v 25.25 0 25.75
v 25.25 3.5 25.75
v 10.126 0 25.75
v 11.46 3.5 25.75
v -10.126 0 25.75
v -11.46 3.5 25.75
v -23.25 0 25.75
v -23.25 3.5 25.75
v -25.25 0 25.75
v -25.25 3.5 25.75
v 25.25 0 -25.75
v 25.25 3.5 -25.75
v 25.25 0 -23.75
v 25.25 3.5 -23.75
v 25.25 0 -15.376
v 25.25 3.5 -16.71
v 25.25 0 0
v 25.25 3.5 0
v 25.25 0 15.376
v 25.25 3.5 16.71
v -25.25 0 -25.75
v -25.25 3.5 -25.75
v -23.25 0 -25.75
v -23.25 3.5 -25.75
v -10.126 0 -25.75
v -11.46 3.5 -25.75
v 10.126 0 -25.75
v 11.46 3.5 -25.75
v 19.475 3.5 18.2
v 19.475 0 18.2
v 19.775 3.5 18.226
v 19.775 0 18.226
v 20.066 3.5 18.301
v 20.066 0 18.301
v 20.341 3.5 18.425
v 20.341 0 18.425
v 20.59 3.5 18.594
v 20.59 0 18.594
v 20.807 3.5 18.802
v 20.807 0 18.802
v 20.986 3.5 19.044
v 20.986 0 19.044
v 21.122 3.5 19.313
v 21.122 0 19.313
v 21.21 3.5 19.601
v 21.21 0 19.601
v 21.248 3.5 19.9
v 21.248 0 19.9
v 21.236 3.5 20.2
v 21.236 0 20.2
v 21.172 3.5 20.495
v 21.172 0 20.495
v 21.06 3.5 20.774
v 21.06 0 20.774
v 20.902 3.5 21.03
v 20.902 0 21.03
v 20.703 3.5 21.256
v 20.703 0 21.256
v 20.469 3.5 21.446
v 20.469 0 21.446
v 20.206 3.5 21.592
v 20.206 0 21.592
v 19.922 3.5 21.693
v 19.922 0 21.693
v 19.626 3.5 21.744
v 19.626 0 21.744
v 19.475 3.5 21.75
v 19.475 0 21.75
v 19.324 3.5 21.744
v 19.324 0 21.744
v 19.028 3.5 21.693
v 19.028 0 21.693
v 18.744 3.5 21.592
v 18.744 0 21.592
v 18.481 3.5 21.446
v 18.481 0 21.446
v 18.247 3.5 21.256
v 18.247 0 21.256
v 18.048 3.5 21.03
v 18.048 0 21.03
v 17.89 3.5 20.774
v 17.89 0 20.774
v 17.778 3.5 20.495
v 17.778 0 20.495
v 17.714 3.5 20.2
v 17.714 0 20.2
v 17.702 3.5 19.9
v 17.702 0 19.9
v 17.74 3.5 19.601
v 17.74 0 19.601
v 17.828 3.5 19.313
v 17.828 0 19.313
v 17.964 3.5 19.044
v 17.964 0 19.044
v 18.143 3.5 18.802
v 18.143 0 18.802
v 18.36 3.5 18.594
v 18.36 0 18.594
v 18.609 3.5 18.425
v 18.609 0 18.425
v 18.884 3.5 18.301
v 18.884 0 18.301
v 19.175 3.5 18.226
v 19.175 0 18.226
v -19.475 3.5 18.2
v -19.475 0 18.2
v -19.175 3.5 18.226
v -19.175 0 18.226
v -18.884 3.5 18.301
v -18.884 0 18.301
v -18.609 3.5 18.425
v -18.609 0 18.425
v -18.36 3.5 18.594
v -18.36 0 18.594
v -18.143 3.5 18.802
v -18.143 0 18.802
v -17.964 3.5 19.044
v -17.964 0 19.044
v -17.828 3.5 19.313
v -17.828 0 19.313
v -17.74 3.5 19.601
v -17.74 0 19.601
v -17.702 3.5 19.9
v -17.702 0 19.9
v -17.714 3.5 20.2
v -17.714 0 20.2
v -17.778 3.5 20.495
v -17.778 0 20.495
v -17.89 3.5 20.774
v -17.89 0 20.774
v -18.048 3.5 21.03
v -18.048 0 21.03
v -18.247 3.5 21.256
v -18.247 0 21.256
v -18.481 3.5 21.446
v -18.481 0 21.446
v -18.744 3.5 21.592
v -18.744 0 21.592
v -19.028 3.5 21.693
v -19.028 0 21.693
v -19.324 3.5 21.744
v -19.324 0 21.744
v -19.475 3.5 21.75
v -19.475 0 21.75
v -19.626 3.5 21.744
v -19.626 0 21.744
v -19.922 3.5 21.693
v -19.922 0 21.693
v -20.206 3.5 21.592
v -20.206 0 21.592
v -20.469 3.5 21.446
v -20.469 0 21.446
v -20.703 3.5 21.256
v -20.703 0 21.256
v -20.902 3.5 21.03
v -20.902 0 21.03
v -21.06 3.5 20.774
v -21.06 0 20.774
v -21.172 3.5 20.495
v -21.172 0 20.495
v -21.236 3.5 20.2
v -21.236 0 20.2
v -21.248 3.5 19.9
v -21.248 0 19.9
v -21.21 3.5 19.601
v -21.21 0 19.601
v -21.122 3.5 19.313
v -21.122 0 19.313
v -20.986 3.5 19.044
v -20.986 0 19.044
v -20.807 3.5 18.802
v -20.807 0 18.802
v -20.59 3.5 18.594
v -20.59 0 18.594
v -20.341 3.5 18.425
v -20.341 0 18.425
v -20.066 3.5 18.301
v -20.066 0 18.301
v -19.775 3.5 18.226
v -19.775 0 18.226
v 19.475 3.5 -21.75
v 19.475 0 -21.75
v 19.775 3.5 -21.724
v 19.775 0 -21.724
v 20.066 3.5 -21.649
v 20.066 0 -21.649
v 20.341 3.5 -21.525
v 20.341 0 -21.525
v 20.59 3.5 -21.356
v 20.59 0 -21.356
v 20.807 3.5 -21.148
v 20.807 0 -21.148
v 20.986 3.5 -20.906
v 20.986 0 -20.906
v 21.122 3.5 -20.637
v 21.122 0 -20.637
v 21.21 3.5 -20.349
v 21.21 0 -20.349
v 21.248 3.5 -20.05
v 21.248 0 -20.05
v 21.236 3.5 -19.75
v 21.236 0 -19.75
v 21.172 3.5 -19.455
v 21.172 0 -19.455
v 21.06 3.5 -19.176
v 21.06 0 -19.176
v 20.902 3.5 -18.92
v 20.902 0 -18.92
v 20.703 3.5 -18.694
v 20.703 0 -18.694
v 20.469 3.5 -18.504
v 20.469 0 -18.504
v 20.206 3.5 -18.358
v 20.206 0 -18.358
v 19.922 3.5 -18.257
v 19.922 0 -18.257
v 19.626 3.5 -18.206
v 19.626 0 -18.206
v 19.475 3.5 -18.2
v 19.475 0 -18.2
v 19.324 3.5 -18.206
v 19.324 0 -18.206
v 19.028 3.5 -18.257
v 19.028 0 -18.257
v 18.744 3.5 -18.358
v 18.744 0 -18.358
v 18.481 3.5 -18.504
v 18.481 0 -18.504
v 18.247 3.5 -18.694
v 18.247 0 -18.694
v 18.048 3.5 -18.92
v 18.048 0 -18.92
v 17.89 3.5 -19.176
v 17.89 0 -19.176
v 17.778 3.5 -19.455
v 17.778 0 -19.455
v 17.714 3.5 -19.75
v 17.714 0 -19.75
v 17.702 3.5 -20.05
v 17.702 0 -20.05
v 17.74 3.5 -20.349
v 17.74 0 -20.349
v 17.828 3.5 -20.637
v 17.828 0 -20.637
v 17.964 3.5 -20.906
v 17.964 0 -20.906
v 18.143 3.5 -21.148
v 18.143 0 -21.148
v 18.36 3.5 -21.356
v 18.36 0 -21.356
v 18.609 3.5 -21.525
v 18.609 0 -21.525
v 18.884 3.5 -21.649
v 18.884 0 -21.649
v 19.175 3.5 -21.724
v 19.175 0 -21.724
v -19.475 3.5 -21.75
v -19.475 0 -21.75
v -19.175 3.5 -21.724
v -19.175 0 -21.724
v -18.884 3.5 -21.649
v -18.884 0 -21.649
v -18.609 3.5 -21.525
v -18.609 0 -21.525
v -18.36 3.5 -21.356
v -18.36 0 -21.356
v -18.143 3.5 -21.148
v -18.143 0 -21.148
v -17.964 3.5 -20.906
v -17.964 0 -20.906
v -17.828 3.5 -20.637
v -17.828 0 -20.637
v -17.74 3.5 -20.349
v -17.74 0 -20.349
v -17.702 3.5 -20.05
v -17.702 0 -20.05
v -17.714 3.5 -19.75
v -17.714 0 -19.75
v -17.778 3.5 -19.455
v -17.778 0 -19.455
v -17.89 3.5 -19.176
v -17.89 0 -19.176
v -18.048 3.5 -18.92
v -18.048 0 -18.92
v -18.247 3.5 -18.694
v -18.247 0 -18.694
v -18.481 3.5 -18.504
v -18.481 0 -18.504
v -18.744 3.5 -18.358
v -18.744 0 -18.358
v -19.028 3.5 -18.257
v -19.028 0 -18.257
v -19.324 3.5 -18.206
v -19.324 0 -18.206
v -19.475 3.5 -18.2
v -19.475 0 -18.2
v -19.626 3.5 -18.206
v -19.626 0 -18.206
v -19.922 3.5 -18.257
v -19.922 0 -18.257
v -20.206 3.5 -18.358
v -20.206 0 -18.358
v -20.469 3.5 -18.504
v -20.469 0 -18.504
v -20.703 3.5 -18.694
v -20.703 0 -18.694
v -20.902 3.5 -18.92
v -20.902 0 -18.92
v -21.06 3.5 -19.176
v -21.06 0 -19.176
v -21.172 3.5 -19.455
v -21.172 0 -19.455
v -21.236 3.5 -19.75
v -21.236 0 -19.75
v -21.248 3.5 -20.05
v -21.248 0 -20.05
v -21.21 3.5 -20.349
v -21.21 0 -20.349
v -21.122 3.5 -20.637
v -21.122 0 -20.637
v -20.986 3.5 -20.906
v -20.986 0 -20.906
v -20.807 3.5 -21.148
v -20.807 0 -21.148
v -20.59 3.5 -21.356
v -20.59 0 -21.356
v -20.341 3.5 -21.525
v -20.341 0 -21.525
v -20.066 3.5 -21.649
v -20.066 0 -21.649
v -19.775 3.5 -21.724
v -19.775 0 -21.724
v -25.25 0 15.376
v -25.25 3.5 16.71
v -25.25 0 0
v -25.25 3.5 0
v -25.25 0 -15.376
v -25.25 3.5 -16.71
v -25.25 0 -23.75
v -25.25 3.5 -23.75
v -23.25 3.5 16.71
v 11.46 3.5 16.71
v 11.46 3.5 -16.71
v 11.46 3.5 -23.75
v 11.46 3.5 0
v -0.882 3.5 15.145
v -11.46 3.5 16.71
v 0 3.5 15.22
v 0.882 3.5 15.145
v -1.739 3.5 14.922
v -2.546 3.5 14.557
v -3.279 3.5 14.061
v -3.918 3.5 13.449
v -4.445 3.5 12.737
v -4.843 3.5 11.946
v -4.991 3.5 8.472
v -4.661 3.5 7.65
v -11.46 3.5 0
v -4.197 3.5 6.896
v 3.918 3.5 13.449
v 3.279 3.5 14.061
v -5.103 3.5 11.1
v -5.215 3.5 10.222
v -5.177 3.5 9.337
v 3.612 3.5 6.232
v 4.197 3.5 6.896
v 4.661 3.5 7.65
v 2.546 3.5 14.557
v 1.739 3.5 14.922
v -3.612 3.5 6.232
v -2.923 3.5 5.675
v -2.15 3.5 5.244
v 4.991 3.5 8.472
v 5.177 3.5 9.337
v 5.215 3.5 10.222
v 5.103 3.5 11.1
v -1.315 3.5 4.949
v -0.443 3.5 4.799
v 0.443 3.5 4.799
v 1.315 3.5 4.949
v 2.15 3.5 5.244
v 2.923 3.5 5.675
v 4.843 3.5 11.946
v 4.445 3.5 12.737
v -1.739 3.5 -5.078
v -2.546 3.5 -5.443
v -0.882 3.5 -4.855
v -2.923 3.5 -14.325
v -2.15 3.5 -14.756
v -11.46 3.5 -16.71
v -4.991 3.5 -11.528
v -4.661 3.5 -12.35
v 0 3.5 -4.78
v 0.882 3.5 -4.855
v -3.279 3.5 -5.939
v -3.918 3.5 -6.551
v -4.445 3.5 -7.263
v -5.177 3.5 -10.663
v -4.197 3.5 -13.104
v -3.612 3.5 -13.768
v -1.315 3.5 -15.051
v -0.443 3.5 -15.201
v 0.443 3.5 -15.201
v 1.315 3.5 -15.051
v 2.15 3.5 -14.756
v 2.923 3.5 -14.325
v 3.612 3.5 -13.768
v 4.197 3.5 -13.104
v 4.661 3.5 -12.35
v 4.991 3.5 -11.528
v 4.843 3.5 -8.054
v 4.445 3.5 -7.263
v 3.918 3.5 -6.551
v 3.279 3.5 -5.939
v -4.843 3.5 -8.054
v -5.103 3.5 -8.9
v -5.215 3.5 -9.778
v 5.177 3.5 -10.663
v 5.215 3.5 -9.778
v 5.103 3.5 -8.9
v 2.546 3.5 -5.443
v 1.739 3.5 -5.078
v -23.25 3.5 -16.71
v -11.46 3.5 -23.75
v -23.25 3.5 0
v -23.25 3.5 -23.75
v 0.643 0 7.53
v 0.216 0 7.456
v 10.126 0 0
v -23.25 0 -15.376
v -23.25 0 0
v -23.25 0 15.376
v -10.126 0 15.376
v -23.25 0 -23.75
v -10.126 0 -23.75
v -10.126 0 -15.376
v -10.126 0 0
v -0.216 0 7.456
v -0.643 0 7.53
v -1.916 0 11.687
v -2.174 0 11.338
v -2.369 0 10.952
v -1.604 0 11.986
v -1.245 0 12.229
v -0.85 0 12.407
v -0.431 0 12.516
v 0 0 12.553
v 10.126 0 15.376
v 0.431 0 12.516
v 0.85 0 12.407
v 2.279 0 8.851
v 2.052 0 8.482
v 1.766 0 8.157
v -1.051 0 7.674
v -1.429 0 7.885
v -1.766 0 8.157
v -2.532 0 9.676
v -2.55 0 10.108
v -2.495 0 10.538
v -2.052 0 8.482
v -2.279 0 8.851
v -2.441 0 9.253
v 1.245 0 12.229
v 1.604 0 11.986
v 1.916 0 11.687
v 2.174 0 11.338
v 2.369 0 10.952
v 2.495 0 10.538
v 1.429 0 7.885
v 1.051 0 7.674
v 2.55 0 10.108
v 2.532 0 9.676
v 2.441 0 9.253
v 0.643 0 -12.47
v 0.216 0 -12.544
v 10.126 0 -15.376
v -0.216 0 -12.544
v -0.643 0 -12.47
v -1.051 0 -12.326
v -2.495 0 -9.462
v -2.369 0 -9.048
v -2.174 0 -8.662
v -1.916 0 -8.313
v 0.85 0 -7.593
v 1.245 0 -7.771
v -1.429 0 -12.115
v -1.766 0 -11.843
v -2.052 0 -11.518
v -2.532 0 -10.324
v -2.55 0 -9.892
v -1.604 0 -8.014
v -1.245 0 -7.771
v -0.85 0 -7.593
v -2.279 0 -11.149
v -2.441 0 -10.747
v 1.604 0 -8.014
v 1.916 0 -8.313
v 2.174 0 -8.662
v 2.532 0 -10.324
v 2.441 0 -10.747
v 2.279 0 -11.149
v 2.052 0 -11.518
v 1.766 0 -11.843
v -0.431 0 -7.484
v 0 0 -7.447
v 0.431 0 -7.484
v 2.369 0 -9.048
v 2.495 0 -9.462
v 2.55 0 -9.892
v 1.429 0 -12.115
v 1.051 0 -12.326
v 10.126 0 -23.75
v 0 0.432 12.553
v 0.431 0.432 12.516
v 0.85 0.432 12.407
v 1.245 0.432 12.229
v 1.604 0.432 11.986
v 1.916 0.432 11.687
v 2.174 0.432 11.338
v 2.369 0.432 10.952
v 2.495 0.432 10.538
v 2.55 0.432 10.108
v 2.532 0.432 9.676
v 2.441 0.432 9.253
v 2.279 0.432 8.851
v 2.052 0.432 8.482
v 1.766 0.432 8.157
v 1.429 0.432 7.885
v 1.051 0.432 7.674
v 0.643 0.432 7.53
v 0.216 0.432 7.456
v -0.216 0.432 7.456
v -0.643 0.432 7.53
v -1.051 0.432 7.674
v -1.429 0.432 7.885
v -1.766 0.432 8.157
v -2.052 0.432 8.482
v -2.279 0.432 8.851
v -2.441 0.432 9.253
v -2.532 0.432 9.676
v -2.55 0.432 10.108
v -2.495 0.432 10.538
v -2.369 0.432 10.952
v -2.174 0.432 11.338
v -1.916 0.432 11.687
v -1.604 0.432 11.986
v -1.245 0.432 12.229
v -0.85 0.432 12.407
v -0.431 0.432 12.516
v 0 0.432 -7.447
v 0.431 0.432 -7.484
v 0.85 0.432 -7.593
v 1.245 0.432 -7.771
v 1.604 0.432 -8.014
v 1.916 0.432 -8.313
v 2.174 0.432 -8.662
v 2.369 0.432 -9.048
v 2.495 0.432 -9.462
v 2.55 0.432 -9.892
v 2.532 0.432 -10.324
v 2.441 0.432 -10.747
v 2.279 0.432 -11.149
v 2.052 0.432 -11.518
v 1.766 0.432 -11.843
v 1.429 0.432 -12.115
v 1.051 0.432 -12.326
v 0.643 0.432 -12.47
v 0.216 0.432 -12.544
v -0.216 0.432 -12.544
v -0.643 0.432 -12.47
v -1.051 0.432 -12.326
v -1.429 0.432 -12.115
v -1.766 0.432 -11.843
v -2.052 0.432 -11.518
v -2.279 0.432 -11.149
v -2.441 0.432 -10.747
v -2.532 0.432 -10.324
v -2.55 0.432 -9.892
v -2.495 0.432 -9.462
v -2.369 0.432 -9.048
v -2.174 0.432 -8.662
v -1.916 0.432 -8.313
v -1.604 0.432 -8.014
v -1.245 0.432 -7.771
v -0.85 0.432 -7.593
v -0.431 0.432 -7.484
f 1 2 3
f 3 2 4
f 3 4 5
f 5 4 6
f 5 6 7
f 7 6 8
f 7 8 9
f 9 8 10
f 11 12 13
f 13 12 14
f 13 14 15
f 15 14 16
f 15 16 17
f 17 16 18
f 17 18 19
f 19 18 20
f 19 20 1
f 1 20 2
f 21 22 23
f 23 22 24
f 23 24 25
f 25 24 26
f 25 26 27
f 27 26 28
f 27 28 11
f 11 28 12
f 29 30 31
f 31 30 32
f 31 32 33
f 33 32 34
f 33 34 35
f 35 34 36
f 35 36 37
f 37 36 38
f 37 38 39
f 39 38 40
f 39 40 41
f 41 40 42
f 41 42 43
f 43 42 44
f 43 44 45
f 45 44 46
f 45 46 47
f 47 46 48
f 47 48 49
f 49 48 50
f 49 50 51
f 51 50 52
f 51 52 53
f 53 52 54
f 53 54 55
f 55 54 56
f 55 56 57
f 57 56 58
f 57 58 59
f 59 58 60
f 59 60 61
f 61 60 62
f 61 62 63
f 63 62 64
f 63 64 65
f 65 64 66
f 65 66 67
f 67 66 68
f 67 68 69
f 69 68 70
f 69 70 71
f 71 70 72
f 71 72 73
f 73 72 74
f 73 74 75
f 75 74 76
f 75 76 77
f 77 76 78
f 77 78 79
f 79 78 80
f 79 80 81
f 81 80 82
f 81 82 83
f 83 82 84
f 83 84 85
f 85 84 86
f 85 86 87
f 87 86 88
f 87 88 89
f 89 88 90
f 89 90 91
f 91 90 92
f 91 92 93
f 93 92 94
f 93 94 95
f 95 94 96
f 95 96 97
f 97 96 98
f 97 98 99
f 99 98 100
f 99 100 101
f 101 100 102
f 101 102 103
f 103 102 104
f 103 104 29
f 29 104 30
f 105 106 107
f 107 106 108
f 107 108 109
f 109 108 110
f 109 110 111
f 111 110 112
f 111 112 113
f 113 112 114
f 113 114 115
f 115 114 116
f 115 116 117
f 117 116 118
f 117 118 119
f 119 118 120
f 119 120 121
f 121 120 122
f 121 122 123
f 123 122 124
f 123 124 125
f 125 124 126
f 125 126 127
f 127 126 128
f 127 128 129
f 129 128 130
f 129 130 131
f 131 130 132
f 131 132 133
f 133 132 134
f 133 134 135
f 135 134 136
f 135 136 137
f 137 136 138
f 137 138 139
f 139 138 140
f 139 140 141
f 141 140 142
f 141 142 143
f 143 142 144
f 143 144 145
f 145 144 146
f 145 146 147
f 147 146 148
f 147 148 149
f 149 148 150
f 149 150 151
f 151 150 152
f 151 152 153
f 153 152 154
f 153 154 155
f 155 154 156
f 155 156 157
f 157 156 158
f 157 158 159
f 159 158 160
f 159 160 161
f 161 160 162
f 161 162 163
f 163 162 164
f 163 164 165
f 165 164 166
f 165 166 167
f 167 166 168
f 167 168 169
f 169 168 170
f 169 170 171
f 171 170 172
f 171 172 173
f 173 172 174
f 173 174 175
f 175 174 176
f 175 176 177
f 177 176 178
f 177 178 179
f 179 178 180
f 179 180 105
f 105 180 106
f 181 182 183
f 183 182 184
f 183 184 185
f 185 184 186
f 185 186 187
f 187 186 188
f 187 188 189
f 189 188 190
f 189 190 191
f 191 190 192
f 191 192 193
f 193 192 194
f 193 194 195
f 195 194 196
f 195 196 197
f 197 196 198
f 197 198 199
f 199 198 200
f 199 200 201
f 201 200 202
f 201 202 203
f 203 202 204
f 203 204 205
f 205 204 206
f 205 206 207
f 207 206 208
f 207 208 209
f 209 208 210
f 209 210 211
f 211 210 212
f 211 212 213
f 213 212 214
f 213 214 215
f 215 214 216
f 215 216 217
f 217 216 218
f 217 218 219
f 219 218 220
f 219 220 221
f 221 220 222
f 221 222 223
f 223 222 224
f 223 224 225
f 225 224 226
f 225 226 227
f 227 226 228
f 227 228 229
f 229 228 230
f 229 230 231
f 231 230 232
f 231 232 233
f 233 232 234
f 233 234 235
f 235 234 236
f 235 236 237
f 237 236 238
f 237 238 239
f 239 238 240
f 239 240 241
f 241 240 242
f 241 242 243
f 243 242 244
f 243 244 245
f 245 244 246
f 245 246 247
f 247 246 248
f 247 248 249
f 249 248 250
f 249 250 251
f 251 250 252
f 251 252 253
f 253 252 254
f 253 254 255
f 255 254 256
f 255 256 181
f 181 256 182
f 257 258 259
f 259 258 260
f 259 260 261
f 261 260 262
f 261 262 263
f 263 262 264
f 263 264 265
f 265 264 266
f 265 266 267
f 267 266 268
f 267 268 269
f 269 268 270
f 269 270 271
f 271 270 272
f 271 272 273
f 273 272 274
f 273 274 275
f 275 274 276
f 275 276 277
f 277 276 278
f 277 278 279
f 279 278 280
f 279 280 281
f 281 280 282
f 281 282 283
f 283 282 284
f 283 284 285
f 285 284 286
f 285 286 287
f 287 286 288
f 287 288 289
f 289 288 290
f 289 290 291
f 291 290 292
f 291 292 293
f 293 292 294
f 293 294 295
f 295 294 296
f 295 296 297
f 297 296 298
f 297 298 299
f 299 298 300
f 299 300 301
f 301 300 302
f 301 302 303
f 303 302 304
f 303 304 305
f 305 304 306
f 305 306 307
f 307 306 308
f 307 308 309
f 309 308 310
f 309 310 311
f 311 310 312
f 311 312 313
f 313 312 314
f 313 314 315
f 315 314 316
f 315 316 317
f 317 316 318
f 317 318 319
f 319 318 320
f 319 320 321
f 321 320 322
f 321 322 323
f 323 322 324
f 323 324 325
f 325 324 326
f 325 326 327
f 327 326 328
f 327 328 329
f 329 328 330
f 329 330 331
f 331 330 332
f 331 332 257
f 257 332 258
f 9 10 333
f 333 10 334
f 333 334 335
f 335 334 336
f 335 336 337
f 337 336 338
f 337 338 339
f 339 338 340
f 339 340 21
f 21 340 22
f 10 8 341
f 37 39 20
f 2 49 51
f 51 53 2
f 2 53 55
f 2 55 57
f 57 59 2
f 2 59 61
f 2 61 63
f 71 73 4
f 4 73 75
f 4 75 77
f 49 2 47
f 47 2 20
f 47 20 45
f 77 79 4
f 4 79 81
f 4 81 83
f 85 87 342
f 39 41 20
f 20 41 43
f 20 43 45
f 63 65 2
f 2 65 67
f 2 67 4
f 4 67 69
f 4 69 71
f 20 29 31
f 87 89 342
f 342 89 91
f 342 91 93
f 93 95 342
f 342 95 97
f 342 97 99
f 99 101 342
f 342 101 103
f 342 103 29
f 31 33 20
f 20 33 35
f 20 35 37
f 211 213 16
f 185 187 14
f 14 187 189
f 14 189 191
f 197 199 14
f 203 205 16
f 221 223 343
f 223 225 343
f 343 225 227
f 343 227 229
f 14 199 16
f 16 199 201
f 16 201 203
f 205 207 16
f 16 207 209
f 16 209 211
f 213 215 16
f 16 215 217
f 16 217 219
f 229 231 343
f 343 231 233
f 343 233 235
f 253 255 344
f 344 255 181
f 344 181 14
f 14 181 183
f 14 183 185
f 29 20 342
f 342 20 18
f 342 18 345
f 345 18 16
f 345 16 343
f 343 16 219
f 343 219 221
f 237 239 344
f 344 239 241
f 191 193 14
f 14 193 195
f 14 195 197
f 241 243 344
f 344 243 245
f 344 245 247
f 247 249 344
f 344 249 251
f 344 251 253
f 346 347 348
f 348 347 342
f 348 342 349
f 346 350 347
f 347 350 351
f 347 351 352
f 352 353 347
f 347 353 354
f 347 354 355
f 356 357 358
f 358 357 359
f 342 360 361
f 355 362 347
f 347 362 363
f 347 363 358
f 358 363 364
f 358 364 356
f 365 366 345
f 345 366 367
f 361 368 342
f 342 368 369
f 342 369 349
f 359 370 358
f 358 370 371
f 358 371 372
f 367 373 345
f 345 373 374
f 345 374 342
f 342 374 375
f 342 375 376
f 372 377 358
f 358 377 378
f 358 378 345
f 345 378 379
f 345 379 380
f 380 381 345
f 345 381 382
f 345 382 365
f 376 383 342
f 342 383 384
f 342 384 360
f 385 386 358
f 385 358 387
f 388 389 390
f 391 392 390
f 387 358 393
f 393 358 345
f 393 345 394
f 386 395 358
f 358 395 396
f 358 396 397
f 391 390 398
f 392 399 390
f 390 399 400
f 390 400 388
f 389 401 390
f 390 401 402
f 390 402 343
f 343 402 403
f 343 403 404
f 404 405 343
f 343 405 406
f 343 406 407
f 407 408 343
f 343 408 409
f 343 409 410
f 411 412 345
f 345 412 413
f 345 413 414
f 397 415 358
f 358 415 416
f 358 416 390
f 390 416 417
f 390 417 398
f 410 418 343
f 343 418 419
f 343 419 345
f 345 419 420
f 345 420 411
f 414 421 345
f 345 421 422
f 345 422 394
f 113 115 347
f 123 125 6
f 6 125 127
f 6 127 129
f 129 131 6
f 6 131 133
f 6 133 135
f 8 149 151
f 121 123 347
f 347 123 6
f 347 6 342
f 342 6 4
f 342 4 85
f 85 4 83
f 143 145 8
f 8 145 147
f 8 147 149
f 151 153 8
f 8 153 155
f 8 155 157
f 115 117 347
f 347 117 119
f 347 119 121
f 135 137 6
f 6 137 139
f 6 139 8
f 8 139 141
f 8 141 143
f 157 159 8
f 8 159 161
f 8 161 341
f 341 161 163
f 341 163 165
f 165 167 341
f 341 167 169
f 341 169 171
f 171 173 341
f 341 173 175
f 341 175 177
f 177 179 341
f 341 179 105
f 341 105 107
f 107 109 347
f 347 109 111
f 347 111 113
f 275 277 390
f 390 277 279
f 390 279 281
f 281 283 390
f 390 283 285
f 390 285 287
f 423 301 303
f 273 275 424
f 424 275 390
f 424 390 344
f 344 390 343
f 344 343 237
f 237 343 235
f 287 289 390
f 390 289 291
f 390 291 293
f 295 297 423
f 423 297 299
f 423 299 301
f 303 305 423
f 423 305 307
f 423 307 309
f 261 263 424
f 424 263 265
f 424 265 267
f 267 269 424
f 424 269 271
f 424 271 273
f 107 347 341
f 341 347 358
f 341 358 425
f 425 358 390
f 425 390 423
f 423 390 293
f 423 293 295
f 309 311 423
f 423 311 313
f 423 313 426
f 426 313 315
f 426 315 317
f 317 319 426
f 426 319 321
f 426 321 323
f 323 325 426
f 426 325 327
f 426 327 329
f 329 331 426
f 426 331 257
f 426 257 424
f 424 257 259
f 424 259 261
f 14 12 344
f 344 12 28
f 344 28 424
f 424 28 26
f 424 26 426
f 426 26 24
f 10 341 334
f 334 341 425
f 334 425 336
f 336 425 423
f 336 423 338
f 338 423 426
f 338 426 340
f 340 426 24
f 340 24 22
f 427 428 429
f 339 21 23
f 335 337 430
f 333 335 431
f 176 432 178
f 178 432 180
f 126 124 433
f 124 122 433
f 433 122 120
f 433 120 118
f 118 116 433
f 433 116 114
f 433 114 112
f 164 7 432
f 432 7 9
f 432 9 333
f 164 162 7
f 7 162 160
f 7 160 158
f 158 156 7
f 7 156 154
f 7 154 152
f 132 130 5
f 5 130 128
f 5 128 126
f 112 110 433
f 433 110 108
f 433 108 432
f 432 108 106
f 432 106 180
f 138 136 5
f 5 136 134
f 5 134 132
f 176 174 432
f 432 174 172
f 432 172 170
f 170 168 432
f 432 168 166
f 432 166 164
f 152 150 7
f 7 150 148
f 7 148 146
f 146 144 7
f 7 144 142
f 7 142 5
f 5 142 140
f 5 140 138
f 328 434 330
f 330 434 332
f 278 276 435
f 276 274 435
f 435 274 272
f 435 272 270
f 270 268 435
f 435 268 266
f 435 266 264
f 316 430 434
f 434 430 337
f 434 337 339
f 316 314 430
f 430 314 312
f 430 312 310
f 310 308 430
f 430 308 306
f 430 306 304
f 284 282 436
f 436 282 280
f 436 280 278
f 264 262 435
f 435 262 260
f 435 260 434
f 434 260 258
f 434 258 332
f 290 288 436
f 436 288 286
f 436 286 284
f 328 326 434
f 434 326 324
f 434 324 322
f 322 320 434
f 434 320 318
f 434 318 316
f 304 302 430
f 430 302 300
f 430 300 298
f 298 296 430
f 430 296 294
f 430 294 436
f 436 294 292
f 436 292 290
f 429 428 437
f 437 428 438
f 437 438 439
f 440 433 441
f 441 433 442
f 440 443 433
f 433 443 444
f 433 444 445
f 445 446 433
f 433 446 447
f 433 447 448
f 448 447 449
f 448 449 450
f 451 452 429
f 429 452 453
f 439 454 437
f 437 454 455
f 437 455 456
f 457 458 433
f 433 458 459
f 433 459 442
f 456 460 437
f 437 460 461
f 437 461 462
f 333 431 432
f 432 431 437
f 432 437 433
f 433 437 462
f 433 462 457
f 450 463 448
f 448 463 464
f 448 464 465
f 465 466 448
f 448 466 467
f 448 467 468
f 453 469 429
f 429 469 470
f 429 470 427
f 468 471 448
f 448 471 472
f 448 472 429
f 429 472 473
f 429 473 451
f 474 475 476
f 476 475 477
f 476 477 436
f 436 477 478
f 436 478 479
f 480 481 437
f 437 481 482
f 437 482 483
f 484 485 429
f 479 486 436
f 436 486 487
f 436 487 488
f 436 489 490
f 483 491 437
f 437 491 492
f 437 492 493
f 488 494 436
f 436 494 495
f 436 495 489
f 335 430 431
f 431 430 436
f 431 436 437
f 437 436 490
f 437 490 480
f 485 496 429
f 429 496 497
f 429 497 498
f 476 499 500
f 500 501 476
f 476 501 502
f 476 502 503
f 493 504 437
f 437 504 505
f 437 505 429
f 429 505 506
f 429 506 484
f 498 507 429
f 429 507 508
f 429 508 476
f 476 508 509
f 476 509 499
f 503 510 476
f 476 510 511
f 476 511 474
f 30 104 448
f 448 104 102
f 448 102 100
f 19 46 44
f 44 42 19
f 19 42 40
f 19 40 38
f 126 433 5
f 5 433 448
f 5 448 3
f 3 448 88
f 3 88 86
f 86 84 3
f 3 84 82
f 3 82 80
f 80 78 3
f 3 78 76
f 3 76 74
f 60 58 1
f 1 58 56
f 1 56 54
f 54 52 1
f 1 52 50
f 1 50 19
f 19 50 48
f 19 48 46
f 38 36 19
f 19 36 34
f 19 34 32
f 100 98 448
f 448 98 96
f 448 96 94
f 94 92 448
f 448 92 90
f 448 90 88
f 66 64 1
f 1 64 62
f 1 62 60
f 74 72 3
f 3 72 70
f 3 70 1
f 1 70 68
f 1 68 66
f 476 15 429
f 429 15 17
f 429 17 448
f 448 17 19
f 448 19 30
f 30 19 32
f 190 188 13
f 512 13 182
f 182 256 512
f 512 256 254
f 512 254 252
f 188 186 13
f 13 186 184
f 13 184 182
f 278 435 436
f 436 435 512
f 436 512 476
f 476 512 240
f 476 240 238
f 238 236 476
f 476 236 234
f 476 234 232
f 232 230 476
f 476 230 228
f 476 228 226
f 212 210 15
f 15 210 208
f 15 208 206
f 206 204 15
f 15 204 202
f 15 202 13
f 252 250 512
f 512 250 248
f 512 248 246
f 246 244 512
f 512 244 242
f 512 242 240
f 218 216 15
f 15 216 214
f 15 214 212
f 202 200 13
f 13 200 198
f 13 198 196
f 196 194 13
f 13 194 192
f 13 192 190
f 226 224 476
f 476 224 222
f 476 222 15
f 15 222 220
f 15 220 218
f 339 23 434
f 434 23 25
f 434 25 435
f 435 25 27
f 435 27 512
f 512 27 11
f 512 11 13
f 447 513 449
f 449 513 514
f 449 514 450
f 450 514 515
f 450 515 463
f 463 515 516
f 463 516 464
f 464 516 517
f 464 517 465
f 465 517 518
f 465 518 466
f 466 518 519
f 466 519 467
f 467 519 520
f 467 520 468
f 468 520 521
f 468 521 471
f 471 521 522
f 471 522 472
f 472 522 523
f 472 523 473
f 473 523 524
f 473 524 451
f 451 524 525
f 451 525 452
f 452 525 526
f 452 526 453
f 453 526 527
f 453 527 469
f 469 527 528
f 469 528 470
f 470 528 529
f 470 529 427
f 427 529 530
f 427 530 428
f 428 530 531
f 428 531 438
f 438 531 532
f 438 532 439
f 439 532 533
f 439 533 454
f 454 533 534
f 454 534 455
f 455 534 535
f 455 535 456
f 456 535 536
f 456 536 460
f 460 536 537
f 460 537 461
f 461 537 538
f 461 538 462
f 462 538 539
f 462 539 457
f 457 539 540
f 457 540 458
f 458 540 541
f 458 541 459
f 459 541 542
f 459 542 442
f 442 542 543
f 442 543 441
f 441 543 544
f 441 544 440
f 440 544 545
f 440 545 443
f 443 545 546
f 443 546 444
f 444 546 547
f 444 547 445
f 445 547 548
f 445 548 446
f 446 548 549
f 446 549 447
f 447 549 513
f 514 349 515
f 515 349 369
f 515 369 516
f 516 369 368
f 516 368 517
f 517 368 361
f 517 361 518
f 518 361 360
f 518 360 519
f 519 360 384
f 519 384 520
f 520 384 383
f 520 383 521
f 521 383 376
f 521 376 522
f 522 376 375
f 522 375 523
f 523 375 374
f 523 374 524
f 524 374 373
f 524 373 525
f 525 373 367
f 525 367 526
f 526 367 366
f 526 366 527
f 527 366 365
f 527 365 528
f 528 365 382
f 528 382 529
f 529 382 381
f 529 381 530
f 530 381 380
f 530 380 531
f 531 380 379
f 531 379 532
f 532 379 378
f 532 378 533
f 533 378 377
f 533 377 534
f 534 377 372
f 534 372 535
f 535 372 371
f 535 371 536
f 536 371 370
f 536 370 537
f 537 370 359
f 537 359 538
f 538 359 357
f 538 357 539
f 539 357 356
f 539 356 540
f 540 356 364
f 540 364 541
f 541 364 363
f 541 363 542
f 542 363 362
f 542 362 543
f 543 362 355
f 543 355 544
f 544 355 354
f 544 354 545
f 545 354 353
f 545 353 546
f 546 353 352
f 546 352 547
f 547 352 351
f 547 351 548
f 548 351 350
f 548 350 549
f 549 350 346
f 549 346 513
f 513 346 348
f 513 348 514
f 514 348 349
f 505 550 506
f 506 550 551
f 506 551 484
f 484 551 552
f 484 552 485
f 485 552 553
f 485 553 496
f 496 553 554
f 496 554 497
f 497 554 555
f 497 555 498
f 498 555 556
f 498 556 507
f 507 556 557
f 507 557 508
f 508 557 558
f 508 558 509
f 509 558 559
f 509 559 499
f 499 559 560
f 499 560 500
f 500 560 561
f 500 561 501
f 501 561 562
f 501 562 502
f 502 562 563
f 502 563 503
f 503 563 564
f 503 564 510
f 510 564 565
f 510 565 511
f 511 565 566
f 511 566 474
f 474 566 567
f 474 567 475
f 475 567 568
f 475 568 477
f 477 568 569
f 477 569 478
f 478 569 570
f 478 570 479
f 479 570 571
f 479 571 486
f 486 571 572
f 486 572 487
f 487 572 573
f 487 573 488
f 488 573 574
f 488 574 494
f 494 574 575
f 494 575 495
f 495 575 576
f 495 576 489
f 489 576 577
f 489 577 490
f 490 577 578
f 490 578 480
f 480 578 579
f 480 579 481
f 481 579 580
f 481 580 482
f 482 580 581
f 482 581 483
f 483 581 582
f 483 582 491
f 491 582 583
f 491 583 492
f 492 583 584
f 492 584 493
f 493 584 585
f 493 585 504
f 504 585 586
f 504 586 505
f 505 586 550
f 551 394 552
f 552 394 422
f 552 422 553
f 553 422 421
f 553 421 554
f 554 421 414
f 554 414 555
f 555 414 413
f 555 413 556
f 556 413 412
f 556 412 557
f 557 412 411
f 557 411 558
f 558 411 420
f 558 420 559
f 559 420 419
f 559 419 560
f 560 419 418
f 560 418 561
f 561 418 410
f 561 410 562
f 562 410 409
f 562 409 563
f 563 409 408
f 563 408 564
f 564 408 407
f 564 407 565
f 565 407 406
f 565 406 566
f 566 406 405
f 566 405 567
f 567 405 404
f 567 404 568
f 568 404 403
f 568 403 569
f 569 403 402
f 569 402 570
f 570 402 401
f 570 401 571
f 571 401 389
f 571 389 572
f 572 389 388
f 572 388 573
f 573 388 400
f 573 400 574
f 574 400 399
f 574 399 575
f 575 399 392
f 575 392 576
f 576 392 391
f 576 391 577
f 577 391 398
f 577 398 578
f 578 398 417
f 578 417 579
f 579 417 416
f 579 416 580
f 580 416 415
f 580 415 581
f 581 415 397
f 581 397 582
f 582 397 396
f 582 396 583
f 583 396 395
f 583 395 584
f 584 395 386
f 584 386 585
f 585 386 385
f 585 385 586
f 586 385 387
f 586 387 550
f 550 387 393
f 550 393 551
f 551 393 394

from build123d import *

# Parameters (mm, degrees)
SKETCH1_W                                   = 50.5
SKETCH1_H                                   = 51.5
SKETCH1_R                                   = 1.775
BOSS_EXTRUDE1_DEPTH                         = 3.5
CSK_FOR_10_FLAT_HEAD_SOCKET_CAP_SCR_2_COUNT = 2
CSK_FOR_10_FLAT_HEAD_SOCKET_CAP_SCR_2_PITCH = 20


with BuildPart() as part:
    # Sketch1 → Boss-Extrude1 (new body)
    with BuildSketch(Plane(origin=(0, 0, 0), x_dir=(1, 0, 0), z_dir=(0, 1, 0))):
        Rectangle(SKETCH1_W, SKETCH1_H)
        with Locations(Location((-19.475, 19.975, 0), (0, 0, 270))):
            Circle(SKETCH1_R, mode=Mode.SUBTRACT)
        with Locations(Location((19.475, 19.975, 0), (0, 0, 270))):
            Circle(SKETCH1_R, mode=Mode.SUBTRACT)
        with Locations(Location((19.475, -19.975, 0), (0, 0, 270))):
            Circle(SKETCH1_R, mode=Mode.SUBTRACT)
        with Locations(Location((-19.475, -19.975, 0), (0, 0, 270))):
            Circle(SKETCH1_R, mode=Mode.SUBTRACT)
    extrude(amount=BOSS_EXTRUDE1_DEPTH)

    # Sketch4 → CSK for #10 Flat Head Socket Cap Screw1 (revolve, cut)
    with BuildSketch(Plane(origin=(0, 3.5, -10), x_dir=(0, 0, 1), z_dir=(1, 0, 0))):
        Polygon((0, 0), (0, 3.5), (2.5527, 3.5), (2.5527, 3.068032542), (5.2197, 0), align=None)
    csk_for_10_flat_head_socket_cap_screw1 = revolve(axis=Axis((0, 9.85, -10), (0, -1, 0)), mode=Mode.SUBTRACT)

    # CSK for _10 Flat Head Socket Cap Scr 2: CSK for #10 Flat Head Socket Cap Screw1 ×2
    with Locations(*[(0, 0, i * CSK_FOR_10_FLAT_HEAD_SOCKET_CAP_SCR_2_PITCH) for i in range(1, CSK_FOR_10_FLAT_HEAD_SOCKET_CAP_SCR_2_COUNT)]):
        add(csk_for_10_flat_head_socket_cap_screw1, mode=Mode.SUBTRACT)


solid = part.part
